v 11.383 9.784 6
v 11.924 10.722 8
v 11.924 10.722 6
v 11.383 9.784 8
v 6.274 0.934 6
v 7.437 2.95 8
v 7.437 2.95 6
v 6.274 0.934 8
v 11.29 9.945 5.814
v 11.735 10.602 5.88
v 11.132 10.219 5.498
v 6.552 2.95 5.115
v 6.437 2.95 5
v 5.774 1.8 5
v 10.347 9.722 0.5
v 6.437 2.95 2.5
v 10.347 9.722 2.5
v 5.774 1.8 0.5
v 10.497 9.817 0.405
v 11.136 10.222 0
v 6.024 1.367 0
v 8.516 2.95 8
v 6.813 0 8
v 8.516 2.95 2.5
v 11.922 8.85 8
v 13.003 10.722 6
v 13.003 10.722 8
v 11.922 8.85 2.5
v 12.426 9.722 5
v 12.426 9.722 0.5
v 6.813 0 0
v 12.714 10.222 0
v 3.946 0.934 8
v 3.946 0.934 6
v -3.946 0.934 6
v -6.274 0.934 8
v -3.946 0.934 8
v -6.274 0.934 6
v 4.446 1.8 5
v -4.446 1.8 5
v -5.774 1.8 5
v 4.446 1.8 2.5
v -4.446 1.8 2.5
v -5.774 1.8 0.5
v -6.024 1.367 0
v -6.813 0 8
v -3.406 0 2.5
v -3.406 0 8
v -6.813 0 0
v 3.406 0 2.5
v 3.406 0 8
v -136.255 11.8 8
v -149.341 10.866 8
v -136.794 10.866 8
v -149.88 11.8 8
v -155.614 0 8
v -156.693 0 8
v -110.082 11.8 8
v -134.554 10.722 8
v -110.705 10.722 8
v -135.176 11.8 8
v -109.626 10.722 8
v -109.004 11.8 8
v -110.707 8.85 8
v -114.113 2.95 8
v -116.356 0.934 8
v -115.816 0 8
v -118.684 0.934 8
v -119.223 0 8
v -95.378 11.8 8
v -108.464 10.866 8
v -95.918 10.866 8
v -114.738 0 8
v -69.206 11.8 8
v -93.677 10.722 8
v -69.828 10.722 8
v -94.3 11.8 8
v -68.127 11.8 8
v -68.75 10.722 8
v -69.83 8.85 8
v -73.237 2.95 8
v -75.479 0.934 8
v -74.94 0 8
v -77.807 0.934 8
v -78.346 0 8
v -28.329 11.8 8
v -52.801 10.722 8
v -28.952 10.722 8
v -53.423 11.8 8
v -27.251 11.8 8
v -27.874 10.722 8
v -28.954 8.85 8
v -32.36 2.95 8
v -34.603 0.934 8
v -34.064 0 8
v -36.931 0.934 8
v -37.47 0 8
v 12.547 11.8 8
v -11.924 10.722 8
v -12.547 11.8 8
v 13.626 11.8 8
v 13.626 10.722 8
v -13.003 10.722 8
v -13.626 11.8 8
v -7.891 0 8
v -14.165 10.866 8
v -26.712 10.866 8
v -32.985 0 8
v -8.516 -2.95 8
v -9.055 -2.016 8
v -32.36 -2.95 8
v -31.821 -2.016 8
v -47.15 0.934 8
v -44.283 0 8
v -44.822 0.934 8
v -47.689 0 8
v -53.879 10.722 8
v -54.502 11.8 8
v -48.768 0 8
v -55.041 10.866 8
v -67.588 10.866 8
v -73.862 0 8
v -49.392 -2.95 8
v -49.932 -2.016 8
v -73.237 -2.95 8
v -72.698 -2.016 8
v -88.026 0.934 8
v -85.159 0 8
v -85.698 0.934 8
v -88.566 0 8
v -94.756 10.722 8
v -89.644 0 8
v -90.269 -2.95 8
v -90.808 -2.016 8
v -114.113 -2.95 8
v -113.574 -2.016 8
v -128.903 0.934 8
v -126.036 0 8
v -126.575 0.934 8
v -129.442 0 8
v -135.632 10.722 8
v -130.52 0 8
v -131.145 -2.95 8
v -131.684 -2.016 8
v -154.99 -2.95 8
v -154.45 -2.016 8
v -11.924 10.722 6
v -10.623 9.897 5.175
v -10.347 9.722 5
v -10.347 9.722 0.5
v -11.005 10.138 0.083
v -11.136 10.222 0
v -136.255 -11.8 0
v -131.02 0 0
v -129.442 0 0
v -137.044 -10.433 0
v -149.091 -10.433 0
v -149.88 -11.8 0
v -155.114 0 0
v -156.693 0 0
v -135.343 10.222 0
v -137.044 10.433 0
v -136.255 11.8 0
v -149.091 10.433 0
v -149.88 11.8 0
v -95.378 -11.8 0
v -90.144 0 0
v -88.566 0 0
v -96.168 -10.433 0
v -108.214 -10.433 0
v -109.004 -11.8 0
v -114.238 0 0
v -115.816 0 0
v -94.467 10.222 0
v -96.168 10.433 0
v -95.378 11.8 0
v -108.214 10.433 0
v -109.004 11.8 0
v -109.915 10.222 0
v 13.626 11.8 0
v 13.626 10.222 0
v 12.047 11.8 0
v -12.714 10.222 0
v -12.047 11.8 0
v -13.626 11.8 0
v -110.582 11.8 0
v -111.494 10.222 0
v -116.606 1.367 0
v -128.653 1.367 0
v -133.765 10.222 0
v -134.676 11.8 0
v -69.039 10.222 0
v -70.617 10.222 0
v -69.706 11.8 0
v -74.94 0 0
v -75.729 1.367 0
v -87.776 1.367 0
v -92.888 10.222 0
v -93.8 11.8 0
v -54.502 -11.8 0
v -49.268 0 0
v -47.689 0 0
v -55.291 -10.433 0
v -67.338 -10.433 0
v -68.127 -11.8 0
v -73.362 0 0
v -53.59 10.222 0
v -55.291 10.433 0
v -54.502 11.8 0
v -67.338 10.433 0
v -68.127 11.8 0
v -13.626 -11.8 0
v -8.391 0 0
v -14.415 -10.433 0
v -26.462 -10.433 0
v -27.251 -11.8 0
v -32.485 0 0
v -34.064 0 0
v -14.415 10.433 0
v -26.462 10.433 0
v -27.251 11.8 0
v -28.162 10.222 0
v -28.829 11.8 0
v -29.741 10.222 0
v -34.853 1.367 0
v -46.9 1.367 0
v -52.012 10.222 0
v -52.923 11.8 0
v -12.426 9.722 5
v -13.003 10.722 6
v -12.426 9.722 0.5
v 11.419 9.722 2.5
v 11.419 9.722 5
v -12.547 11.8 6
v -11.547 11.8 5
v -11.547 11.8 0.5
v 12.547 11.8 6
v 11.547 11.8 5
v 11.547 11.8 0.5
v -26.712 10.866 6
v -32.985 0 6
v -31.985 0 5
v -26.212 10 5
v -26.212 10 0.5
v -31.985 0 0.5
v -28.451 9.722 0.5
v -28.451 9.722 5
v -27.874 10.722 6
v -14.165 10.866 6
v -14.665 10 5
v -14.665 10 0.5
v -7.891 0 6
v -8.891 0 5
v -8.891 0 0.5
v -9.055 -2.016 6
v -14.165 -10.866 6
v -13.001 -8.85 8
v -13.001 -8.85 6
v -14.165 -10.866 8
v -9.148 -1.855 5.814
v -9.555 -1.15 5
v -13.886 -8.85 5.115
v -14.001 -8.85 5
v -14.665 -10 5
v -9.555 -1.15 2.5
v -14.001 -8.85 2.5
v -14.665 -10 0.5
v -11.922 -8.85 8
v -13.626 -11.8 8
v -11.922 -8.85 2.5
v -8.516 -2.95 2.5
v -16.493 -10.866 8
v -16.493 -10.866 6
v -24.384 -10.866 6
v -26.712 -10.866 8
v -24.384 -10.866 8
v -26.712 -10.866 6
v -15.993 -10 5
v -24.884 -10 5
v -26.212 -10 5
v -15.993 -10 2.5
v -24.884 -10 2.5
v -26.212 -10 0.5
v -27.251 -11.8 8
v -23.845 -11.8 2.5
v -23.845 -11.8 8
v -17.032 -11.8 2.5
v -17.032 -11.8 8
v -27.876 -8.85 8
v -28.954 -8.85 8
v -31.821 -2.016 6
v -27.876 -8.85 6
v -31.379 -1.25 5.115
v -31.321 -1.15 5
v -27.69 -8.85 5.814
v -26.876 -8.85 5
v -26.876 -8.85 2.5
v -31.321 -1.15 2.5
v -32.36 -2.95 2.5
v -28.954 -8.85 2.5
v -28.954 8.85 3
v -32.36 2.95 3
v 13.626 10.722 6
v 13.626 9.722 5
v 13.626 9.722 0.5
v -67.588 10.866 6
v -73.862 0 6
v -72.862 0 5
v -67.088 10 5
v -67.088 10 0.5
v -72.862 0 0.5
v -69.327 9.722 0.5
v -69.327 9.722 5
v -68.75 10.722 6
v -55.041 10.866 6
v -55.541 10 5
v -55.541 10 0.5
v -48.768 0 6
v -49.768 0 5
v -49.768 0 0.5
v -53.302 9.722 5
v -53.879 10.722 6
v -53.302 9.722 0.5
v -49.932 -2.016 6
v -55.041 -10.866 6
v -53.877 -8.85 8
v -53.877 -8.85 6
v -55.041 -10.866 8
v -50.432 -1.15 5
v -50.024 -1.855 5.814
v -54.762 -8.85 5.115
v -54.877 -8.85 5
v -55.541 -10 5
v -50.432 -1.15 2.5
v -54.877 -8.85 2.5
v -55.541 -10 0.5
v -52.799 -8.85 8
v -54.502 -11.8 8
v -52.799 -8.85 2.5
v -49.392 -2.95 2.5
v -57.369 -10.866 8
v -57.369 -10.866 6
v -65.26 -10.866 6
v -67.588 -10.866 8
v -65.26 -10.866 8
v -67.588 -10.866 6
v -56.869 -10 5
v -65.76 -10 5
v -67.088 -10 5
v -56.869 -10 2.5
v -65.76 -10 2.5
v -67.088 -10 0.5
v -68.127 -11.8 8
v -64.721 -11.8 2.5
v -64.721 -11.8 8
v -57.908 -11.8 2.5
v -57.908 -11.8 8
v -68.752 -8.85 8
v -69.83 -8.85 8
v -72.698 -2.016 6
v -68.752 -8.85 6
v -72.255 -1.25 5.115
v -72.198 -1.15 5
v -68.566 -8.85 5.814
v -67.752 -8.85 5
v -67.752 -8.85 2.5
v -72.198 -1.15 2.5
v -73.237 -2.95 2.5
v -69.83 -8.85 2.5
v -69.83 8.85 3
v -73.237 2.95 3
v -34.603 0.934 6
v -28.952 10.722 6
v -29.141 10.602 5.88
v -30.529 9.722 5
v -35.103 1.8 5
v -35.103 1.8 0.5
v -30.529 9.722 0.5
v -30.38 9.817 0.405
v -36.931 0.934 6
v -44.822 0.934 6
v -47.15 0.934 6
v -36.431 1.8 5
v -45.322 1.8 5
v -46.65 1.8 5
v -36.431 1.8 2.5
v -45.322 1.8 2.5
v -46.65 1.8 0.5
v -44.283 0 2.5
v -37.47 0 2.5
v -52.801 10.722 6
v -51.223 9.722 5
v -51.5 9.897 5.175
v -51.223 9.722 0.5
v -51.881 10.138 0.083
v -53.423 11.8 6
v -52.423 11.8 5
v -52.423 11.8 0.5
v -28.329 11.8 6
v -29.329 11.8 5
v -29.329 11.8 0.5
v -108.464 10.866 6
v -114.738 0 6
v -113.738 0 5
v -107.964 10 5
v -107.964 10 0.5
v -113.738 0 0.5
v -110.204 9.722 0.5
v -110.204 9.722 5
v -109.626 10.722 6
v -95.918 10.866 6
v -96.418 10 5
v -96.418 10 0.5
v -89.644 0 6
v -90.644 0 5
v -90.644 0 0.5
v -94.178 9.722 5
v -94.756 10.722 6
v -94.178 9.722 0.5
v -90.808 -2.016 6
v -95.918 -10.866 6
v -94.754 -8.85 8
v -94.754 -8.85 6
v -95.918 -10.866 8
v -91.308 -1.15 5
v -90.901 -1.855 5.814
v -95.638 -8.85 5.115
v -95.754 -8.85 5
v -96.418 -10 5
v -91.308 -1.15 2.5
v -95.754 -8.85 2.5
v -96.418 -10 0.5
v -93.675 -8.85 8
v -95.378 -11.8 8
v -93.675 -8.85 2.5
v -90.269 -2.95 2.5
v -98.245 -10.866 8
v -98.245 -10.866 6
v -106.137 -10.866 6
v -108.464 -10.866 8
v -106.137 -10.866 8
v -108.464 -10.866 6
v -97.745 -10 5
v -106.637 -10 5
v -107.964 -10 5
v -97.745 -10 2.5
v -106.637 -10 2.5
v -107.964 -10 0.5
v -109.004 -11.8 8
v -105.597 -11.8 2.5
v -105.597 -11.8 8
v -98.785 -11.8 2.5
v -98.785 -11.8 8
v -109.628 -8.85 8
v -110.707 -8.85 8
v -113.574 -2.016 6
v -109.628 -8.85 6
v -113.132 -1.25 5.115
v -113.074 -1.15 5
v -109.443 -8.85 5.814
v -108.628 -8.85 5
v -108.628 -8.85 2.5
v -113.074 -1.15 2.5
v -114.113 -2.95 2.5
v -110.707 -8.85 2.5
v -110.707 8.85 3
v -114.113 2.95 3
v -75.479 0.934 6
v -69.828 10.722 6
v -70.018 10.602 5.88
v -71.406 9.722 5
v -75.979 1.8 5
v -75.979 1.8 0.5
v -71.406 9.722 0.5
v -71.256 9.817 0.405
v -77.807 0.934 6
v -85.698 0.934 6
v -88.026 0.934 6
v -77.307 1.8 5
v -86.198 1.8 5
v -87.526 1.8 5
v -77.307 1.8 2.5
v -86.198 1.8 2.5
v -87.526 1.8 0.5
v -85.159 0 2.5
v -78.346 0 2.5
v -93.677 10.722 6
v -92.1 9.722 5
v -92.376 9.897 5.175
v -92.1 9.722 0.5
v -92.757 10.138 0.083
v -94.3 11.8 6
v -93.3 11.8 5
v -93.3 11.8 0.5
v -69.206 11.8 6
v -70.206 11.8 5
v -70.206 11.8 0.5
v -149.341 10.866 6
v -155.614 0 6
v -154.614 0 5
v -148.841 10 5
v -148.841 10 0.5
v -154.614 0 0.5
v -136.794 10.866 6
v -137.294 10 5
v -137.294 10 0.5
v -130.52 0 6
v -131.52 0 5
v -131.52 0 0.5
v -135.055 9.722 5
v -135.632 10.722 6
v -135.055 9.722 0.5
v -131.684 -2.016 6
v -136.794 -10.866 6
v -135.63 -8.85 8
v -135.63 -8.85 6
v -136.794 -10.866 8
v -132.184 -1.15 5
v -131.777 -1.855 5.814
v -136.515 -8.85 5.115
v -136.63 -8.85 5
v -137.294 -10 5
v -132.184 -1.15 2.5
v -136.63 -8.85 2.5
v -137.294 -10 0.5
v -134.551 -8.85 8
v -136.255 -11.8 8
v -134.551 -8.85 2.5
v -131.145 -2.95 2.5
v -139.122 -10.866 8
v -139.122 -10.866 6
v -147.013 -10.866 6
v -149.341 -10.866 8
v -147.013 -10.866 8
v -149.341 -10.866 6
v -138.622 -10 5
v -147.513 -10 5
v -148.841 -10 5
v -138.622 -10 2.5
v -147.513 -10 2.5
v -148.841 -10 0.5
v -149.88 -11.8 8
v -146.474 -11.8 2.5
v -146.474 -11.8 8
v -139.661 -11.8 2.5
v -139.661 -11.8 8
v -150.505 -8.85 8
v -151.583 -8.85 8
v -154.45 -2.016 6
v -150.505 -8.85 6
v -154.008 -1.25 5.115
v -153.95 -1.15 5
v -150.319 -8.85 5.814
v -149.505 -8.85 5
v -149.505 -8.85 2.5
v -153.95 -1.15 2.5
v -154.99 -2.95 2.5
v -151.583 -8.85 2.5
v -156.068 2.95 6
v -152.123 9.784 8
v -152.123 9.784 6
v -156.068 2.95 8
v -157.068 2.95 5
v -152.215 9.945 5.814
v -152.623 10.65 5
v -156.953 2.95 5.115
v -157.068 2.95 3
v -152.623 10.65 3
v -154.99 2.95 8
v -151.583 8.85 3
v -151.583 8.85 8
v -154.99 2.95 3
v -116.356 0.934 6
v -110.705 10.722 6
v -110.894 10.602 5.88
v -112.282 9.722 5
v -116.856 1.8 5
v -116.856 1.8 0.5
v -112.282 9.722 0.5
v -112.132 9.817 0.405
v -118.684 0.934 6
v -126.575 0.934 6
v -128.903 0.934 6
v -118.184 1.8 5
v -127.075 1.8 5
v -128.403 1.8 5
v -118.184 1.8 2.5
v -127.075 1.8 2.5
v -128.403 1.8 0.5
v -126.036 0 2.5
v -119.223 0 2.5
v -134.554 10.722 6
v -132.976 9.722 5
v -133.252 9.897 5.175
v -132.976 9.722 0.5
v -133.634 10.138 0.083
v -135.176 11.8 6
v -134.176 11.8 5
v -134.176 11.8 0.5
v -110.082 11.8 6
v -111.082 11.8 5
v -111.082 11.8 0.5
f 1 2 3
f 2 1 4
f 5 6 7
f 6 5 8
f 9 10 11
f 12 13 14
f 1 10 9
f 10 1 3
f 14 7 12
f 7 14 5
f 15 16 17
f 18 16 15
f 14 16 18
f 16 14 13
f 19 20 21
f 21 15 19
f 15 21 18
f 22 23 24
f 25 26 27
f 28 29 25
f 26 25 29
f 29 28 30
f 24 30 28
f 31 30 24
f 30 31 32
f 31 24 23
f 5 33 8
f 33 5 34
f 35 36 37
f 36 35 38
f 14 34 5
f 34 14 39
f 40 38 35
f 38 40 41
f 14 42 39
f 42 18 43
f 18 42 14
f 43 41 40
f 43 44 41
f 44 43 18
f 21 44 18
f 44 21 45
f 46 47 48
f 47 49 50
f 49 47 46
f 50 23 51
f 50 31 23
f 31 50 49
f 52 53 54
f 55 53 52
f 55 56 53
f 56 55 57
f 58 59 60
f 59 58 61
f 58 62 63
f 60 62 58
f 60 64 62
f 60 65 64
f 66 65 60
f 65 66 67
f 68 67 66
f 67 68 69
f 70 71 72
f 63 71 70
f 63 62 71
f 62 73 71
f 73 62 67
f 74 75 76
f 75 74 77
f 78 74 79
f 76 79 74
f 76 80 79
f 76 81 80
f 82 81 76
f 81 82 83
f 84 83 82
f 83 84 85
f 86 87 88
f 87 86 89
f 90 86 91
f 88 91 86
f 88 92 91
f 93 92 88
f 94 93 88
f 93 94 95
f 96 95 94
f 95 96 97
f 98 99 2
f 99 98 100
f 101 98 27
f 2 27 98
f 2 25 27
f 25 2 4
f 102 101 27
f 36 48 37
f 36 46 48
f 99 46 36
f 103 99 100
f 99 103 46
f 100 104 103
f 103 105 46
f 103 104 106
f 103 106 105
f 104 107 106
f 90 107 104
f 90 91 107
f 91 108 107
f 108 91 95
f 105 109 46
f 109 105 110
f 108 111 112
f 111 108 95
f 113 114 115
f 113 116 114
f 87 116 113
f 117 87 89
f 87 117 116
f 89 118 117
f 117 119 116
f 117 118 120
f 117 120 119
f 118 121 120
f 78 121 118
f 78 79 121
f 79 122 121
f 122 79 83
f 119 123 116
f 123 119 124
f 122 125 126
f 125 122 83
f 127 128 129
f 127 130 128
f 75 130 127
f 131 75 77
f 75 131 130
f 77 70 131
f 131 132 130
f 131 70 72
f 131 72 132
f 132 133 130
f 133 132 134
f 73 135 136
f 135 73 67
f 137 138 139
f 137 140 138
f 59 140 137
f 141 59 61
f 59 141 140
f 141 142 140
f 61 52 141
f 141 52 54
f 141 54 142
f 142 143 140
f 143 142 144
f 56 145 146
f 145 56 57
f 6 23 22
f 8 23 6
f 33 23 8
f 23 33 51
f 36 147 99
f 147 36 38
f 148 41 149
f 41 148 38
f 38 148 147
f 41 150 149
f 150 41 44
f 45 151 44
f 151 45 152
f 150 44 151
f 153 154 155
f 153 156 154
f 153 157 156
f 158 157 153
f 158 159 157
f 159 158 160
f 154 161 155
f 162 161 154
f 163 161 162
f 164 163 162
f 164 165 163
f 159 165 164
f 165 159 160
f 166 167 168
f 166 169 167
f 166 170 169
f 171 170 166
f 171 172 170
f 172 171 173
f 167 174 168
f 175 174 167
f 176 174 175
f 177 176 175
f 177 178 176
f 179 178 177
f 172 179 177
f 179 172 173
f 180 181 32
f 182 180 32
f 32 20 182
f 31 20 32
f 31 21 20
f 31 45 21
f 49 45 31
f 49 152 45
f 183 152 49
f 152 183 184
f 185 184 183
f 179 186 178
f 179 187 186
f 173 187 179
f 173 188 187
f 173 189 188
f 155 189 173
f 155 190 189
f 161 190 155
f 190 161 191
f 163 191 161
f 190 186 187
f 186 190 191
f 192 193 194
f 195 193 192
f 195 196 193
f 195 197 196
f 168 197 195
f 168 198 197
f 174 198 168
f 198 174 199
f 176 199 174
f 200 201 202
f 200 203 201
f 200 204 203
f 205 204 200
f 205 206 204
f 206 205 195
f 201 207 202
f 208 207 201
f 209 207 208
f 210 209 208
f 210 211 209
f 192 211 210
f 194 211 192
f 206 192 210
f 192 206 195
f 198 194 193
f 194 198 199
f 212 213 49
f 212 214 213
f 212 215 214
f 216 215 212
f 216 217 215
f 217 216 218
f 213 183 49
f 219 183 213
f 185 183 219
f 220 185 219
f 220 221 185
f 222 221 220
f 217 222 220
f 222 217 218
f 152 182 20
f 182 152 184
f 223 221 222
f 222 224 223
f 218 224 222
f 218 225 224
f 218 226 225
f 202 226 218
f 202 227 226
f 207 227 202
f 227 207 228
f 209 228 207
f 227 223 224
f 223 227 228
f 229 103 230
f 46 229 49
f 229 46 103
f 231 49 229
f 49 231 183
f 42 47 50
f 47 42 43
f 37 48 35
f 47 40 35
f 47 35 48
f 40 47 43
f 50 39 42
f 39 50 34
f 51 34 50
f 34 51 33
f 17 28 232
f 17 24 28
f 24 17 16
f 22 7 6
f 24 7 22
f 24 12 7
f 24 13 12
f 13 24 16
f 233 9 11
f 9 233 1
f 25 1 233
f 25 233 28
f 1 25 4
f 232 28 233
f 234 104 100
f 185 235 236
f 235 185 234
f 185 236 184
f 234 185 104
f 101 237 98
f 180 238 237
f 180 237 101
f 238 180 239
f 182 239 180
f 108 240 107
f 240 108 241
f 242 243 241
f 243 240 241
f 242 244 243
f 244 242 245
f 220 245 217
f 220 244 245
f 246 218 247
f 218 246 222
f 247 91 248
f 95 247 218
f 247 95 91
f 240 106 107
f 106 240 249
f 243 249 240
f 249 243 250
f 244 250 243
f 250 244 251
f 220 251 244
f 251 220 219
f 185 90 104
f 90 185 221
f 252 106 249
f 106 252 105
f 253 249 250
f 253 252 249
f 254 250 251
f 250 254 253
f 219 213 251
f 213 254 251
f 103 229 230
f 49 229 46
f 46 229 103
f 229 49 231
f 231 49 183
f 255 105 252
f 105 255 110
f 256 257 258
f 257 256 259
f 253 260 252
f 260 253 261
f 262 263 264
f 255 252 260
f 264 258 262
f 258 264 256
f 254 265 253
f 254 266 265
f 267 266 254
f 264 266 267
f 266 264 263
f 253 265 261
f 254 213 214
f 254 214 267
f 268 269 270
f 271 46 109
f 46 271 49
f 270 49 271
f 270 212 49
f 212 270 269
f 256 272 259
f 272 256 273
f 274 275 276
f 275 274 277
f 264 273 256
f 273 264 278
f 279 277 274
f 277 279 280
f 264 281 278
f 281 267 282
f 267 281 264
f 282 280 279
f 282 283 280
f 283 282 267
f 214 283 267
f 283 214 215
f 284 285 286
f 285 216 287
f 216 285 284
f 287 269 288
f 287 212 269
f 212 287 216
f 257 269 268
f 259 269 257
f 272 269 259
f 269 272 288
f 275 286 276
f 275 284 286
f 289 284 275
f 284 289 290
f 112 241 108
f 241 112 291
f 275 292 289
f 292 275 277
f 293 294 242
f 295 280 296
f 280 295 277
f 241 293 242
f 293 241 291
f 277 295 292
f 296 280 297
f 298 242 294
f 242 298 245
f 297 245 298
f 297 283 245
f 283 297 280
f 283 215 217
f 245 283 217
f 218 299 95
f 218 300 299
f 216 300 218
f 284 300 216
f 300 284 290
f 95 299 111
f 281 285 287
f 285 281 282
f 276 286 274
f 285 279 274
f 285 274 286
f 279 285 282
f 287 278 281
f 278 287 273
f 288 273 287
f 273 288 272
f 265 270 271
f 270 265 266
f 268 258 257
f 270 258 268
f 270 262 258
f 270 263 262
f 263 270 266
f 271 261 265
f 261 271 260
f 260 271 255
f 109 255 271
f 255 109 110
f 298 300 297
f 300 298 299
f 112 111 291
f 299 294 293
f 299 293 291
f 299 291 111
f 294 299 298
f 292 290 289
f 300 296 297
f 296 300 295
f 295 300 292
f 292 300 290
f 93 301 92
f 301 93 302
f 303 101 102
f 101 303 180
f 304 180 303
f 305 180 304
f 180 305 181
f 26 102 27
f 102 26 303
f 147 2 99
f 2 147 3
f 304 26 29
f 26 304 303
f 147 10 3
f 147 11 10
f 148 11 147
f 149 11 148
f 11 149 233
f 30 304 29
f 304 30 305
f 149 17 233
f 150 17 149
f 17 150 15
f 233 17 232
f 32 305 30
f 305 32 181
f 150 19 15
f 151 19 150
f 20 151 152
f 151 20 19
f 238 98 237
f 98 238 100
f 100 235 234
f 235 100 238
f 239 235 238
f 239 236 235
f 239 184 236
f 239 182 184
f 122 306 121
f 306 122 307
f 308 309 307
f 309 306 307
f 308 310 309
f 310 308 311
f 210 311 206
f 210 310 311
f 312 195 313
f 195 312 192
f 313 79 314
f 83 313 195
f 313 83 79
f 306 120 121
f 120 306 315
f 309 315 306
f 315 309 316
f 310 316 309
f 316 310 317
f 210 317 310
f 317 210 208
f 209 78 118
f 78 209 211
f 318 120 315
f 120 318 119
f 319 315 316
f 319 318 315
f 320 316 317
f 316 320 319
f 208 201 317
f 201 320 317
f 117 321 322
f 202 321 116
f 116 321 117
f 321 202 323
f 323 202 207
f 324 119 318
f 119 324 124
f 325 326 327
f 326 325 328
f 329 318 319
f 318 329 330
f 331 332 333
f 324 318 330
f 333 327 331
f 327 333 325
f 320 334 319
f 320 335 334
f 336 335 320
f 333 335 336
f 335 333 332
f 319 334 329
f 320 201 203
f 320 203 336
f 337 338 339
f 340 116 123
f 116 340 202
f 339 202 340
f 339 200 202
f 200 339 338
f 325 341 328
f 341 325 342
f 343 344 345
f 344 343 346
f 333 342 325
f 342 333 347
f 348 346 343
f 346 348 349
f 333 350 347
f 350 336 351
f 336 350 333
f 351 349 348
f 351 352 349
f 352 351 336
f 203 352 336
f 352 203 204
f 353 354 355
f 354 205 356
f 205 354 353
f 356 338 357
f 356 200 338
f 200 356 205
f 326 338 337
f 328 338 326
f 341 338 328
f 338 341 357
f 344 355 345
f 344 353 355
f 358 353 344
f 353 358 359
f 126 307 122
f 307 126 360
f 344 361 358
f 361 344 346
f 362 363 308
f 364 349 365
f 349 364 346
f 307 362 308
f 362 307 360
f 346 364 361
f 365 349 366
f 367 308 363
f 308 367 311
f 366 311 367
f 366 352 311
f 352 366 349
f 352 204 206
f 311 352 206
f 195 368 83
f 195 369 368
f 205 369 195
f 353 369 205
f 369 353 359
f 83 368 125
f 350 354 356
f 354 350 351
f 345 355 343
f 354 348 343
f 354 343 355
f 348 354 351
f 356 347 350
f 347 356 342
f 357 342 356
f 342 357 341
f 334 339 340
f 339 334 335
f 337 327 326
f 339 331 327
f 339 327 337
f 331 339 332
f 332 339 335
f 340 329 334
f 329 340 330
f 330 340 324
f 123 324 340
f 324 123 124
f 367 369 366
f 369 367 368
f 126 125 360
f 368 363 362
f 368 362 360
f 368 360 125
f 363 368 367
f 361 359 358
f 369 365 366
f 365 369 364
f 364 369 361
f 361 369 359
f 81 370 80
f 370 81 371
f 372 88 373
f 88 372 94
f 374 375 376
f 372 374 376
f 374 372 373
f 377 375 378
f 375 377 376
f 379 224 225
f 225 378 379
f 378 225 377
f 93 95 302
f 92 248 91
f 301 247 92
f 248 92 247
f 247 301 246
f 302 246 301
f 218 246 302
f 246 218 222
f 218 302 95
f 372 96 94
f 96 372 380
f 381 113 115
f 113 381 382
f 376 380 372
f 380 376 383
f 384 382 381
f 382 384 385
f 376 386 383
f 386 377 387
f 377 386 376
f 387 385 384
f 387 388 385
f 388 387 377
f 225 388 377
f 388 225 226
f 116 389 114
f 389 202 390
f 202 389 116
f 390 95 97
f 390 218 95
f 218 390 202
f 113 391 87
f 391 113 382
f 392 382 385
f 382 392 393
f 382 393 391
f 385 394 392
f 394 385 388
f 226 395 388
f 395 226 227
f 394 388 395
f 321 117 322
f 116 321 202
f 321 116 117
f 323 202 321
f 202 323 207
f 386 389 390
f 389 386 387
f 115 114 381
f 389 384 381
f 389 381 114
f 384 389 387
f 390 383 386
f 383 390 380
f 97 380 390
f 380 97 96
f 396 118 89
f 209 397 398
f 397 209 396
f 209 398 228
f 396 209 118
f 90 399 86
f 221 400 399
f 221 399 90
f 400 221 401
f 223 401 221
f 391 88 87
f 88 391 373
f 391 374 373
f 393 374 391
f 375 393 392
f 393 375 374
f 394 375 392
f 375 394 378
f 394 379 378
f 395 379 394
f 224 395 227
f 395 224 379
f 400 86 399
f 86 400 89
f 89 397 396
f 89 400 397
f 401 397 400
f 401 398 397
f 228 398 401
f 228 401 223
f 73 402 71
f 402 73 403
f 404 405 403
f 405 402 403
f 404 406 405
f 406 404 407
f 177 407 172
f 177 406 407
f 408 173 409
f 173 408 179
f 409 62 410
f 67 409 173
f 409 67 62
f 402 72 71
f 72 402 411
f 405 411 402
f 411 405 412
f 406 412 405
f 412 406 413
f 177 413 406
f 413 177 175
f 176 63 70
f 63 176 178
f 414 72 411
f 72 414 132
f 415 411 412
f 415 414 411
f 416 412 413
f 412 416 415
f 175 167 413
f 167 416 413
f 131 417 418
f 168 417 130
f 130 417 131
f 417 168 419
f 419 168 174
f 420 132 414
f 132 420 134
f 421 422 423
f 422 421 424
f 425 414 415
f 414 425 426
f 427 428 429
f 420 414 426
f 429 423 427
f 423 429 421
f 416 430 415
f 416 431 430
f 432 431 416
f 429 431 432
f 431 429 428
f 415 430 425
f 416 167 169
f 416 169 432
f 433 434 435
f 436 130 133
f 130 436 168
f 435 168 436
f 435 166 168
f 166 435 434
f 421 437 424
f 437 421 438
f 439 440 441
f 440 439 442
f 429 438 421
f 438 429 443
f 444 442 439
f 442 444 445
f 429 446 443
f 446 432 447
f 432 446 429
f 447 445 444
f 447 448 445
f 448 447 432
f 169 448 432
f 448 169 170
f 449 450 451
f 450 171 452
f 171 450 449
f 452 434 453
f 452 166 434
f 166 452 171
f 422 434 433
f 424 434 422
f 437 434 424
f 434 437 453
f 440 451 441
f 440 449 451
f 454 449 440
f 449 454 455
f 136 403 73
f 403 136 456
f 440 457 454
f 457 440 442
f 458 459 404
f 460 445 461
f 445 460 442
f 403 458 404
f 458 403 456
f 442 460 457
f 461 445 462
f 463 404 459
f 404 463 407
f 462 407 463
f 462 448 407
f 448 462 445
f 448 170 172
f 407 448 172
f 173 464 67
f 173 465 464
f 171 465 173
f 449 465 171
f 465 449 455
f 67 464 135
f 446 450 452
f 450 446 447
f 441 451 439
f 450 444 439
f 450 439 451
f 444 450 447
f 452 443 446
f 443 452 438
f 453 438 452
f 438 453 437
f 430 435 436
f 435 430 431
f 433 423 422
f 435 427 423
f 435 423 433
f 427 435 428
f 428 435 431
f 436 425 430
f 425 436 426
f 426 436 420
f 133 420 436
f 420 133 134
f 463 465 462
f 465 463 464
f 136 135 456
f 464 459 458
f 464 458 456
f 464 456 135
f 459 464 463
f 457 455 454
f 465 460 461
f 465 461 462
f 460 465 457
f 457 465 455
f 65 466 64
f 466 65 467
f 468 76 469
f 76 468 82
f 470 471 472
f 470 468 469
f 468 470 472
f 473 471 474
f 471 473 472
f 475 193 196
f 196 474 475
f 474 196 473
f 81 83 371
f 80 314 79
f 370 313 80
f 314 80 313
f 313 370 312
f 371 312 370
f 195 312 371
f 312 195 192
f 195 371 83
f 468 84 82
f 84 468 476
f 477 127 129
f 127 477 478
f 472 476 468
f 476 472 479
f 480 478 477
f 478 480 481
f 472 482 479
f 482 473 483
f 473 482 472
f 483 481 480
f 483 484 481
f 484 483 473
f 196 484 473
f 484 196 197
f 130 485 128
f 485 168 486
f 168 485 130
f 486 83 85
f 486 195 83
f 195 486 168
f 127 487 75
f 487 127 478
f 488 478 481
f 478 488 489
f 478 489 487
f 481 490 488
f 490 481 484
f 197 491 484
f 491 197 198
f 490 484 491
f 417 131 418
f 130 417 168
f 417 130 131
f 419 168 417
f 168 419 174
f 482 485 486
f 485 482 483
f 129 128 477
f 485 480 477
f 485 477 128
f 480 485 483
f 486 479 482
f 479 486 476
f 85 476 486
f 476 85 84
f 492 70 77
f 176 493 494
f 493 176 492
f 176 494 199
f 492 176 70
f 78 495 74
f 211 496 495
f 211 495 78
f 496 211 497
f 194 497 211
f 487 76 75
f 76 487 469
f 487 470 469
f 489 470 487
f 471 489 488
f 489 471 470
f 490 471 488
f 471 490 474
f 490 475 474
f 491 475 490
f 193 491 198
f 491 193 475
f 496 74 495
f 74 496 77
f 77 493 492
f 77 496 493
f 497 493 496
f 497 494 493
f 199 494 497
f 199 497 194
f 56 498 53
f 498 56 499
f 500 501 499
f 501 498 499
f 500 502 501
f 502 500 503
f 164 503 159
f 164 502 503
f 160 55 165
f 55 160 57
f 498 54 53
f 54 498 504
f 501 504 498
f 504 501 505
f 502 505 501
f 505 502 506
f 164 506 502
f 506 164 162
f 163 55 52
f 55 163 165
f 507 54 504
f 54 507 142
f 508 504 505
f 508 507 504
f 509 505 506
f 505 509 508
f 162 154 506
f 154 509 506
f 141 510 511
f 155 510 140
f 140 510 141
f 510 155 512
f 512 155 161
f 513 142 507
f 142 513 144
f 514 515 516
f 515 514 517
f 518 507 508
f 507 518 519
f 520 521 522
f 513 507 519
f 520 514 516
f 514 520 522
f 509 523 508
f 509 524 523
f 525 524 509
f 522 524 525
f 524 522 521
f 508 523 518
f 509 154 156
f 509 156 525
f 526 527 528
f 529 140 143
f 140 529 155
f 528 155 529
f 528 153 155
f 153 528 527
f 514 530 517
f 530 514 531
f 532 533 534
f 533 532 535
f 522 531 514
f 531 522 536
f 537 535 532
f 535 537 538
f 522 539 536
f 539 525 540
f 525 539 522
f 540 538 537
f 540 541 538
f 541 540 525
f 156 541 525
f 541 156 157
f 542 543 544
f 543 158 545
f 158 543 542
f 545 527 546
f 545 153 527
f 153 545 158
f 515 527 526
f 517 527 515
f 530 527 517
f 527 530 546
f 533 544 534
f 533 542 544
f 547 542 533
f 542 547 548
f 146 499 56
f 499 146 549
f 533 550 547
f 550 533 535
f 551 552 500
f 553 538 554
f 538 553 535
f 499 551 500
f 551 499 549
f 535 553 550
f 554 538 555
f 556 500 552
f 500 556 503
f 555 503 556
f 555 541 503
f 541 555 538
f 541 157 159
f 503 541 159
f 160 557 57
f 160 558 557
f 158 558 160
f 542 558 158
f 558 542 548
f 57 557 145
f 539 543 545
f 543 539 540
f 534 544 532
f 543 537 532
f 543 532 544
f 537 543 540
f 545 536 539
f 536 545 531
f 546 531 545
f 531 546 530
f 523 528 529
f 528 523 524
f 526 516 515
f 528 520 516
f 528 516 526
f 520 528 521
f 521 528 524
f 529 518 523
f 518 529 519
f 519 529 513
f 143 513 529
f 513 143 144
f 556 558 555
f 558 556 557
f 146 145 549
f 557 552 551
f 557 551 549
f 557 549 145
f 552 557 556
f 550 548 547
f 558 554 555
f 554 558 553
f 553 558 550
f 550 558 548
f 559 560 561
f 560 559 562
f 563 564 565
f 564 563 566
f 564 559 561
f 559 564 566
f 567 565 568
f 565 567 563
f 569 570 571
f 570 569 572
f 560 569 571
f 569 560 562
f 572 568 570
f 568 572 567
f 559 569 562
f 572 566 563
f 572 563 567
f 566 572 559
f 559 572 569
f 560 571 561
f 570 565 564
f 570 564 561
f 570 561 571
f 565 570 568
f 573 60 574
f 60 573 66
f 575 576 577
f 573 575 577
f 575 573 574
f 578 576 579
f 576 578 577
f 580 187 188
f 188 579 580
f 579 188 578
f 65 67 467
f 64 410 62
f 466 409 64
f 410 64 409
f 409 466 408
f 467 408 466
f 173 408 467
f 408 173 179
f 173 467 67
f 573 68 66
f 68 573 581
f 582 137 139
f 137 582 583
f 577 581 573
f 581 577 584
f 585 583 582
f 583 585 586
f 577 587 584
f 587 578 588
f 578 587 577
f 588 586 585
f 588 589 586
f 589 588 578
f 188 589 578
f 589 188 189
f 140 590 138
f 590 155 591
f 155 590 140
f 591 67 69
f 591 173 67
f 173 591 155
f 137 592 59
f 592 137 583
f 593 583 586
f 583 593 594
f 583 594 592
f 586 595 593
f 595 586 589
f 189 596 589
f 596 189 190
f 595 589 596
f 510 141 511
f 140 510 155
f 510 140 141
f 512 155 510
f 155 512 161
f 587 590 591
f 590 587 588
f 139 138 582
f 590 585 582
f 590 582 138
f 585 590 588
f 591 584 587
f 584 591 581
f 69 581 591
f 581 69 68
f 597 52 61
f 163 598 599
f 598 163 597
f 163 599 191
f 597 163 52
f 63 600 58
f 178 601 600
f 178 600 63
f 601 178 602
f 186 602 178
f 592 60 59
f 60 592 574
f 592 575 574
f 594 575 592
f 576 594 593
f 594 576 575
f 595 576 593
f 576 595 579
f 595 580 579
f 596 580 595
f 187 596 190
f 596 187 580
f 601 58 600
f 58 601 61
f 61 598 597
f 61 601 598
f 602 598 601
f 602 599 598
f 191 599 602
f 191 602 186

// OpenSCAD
// file: _honeycomb_element.scad
$fn = 50;

radius = 13.6;
diameter = radius * 2;

h_inner = 10;
r_inner = h_inner * 2 / sqrt(3);

h_outer = 10 + 1.8;
r_outer = h_outer * 2 / sqrt(3);

h_thin = 10 + 1;
r_thin = h_thin * 2 / sqrt(3);

total_height = 8;

small_value = 0.1;

clips_height = 5;
clips_offset = 0.5;
clips_side_offset = 0.00;

module basic_polygon() {
  polygon(
    [
      [r_outer, total_height],
      [r_outer, 0],
      [r_inner + 0.5, 0],
      [r_inner, 0.5],
      [r_inner, total_height - 3],
      [r_inner + 1, total_height - 2],
      [r_inner + 1, total_height],
    ]
  );
}

module basic_model() {
  rotate_extrude($fn=6) {
    basic_polygon();
  }
}

module panel_with_clips(pin_1 = false, pin_2 = false, pin_3 = false, pin_4 = false, pin_5 = false, pin_6 = false, slot_1 = false, slot_2 = false, slot_3 = false, slot_4 = false, slot_5 = false, slot_6 = false) {

  difference() {
    basic_model();

    if (slot_1) {
      rotate([0, 0, 0])
        translate([0, -h_outer * 2, total_height - (clips_height + clips_offset) / 2])
          linear_extrude(height=clips_height + clips_offset, center=true)
            polygon([[clips_side_offset, h_outer / 2], [-clips_side_offset, h_outer / 2], [-r_outer / 2 - clips_side_offset, h_outer * 1.5], [r_outer / 2 + clips_side_offset, h_outer * 1.5]]);
    }

    if (slot_2) {
      rotate([0, 0, 60])
        translate([0, -h_outer * 2, total_height - (clips_height + clips_offset) / 2])
          linear_extrude(height=clips_height + clips_offset, center=true)
            polygon([[clips_side_offset, h_outer / 2], [-clips_side_offset, h_outer / 2], [-r_outer / 2 - clips_side_offset, h_outer * 1.5], [r_outer / 2 + clips_side_offset, h_outer * 1.5]]);
    }

    if (slot_3) {
      rotate([0, 0, 120])
        translate([0, -h_outer * 2, total_height - (clips_height + clips_offset) / 2])
          linear_extrude(height=clips_height + clips_offset, center=true)
            polygon([[clips_side_offset, h_outer / 2], [-clips_side_offset, h_outer / 2], [-r_outer / 2 - clips_side_offset, h_outer * 1.5], [r_outer / 2 + clips_side_offset, h_outer * 1.5]]);
    }

    if (slot_4) {
      rotate([0, 0, 180])
        translate([0, -h_outer * 2, total_height - (clips_height + clips_offset) / 2])
          linear_extrude(height=clips_height + clips_offset, center=true)
            polygon([[clips_side_offset, h_outer / 2], [-clips_side_offset, h_outer / 2], [-r_outer / 2 - clips_side_offset, h_outer * 1.5], [r_outer / 2 + clips_side_offset, h_outer * 1.5]]);
    }

    if (slot_5) {
      rotate([0, 0, 240])
        translate([0, -h_outer * 2, total_height - (clips_height + clips_offset) / 2])
          linear_extrude(height=clips_height + clips_offset, center=true)
            polygon([[clips_side_offset, h_outer / 2], [-clips_side_offset, h_outer / 2], [-r_outer / 2 - clips_side_offset, h_outer * 1.5], [r_outer / 2 + clips_side_offset, h_outer * 1.5]]);
    }

    if (slot_6) {
      rotate([0, 0, 300])
        translate([0, -h_outer * 2, total_height - (clips_height + clips_offset) / 2])
          linear_extrude(height=clips_height + clips_offset, center=true)
            polygon([[clips_side_offset, h_outer / 2], [-clips_side_offset, h_outer / 2], [-r_outer / 2 - clips_side_offset, h_outer * 1.5], [r_outer / 2 + clips_side_offset, h_outer * 1.5]]);
    }
  }

  if (pin_1) {
    intersection() {
      translate([0, -h_outer * 2, 0])
        basic_model();
      translate([0, 0, total_height - clips_height / 2]) {
        rotate([0, 0, -180])
          linear_extrude(height=clips_height, center=true)
            polygon([[0, h_outer / 2], [-r_outer / 2, h_outer * 1.5], [r_outer / 2, h_outer * 1.5]]);
      }
    }
  }

  if (pin_2) {
    intersection() {
      translate([r_outer * 1.5, -h_outer, 0])
        basic_model();
      translate([0, 0, total_height - clips_height / 2]) {
        rotate([0, 0, -120])
          linear_extrude(height=clips_height, center=true)
            polygon([[0, h_outer / 2], [-r_outer / 2, h_outer * 1.5], [r_outer / 2, h_outer * 1.5]]);
      }
    }
  }

  if (pin_3) {
    intersection() {
      translate([r_outer * 1.5, h_outer, 0])
        basic_model();
      translate([0, 0, total_height - clips_height / 2]) {
        rotate([0, 0, -60])
          linear_extrude(height=clips_height, center=true)
            polygon([[0, h_outer / 2], [-r_outer / 2, h_outer * 1.5], [r_outer / 2, h_outer * 1.5]]);
      }
    }
  }

  if (pin_4) {
    intersection() {
      translate([0, h_outer * 2, 0])
        basic_model();

      translate([0, 0, total_height - clips_height / 2]) {
        linear_extrude(height=clips_height, center=true)
          polygon([[0, h_outer / 2], [-r_outer / 2, h_outer * 1.5], [r_outer / 2, h_outer * 1.5]]);
      }
    }
  }

  if (pin_5) {
    intersection() {
      translate([-r_outer * 1.5, h_outer, 0])
        basic_model();
      translate([0, 0, total_height - clips_height / 2]) {
        rotate([0, 0, 60])
          linear_extrude(height=clips_height, center=true)
            polygon([[0, h_outer / 2], [-r_outer / 2, h_outer * 1.5], [r_outer / 2, h_outer * 1.5]]);
      }
    }
  }

  if (pin_6) {
    intersection() {
      translate([-r_outer * 1.5, -h_outer, 0])
        basic_model();

      translate([0, 0, total_height - clips_height / 2]) {
        rotate([0, 0, 120])
          linear_extrude(height=clips_height, center=true)
            polygon([[0, h_outer / 2], [-r_outer / 2, h_outer * 1.5], [r_outer / 2, h_outer * 1.5]]);
      }
    }
  }
}

// end _honeycomb_element.scad
// main file
$fn = 50;

h_outer = 10 + 1.8;
r_outer = h_outer * 2 / sqrt(3);

use <_honeycomb_element.scad>;

module perimeter_top_item(left_slot = false) {
  difference() {
    translate([0, h_outer, 0])
      panel_with_clips(slot_1=true, slot_2=left_slot);

    translate([0, 50 + h_outer, 0])
      cube([100, 100, 100], center=true);
  }

  translate([-r_outer * 1.5, 0, 0])
    panel_with_clips(slot_1=true, slot_2=true, slot_6=true, pin_5=true);

  translate([0, h_outer - r_outer, 0])
    rotate([90, 0, 90])
      linear_extrude(height=r_outer * 2, center=true)
        basic_polygon();
}

module perimeter_bottom() {
  perimeter_top_item(left_slot=true);

  translate([-3 * r_outer, 0, 0])
    perimeter_top_item();

  translate([-6 * r_outer, 0, 0])
    perimeter_top_item();

  translate([-9 * r_outer, 0, 0])
    perimeter_top_item();
}

perimeter_bottom();
